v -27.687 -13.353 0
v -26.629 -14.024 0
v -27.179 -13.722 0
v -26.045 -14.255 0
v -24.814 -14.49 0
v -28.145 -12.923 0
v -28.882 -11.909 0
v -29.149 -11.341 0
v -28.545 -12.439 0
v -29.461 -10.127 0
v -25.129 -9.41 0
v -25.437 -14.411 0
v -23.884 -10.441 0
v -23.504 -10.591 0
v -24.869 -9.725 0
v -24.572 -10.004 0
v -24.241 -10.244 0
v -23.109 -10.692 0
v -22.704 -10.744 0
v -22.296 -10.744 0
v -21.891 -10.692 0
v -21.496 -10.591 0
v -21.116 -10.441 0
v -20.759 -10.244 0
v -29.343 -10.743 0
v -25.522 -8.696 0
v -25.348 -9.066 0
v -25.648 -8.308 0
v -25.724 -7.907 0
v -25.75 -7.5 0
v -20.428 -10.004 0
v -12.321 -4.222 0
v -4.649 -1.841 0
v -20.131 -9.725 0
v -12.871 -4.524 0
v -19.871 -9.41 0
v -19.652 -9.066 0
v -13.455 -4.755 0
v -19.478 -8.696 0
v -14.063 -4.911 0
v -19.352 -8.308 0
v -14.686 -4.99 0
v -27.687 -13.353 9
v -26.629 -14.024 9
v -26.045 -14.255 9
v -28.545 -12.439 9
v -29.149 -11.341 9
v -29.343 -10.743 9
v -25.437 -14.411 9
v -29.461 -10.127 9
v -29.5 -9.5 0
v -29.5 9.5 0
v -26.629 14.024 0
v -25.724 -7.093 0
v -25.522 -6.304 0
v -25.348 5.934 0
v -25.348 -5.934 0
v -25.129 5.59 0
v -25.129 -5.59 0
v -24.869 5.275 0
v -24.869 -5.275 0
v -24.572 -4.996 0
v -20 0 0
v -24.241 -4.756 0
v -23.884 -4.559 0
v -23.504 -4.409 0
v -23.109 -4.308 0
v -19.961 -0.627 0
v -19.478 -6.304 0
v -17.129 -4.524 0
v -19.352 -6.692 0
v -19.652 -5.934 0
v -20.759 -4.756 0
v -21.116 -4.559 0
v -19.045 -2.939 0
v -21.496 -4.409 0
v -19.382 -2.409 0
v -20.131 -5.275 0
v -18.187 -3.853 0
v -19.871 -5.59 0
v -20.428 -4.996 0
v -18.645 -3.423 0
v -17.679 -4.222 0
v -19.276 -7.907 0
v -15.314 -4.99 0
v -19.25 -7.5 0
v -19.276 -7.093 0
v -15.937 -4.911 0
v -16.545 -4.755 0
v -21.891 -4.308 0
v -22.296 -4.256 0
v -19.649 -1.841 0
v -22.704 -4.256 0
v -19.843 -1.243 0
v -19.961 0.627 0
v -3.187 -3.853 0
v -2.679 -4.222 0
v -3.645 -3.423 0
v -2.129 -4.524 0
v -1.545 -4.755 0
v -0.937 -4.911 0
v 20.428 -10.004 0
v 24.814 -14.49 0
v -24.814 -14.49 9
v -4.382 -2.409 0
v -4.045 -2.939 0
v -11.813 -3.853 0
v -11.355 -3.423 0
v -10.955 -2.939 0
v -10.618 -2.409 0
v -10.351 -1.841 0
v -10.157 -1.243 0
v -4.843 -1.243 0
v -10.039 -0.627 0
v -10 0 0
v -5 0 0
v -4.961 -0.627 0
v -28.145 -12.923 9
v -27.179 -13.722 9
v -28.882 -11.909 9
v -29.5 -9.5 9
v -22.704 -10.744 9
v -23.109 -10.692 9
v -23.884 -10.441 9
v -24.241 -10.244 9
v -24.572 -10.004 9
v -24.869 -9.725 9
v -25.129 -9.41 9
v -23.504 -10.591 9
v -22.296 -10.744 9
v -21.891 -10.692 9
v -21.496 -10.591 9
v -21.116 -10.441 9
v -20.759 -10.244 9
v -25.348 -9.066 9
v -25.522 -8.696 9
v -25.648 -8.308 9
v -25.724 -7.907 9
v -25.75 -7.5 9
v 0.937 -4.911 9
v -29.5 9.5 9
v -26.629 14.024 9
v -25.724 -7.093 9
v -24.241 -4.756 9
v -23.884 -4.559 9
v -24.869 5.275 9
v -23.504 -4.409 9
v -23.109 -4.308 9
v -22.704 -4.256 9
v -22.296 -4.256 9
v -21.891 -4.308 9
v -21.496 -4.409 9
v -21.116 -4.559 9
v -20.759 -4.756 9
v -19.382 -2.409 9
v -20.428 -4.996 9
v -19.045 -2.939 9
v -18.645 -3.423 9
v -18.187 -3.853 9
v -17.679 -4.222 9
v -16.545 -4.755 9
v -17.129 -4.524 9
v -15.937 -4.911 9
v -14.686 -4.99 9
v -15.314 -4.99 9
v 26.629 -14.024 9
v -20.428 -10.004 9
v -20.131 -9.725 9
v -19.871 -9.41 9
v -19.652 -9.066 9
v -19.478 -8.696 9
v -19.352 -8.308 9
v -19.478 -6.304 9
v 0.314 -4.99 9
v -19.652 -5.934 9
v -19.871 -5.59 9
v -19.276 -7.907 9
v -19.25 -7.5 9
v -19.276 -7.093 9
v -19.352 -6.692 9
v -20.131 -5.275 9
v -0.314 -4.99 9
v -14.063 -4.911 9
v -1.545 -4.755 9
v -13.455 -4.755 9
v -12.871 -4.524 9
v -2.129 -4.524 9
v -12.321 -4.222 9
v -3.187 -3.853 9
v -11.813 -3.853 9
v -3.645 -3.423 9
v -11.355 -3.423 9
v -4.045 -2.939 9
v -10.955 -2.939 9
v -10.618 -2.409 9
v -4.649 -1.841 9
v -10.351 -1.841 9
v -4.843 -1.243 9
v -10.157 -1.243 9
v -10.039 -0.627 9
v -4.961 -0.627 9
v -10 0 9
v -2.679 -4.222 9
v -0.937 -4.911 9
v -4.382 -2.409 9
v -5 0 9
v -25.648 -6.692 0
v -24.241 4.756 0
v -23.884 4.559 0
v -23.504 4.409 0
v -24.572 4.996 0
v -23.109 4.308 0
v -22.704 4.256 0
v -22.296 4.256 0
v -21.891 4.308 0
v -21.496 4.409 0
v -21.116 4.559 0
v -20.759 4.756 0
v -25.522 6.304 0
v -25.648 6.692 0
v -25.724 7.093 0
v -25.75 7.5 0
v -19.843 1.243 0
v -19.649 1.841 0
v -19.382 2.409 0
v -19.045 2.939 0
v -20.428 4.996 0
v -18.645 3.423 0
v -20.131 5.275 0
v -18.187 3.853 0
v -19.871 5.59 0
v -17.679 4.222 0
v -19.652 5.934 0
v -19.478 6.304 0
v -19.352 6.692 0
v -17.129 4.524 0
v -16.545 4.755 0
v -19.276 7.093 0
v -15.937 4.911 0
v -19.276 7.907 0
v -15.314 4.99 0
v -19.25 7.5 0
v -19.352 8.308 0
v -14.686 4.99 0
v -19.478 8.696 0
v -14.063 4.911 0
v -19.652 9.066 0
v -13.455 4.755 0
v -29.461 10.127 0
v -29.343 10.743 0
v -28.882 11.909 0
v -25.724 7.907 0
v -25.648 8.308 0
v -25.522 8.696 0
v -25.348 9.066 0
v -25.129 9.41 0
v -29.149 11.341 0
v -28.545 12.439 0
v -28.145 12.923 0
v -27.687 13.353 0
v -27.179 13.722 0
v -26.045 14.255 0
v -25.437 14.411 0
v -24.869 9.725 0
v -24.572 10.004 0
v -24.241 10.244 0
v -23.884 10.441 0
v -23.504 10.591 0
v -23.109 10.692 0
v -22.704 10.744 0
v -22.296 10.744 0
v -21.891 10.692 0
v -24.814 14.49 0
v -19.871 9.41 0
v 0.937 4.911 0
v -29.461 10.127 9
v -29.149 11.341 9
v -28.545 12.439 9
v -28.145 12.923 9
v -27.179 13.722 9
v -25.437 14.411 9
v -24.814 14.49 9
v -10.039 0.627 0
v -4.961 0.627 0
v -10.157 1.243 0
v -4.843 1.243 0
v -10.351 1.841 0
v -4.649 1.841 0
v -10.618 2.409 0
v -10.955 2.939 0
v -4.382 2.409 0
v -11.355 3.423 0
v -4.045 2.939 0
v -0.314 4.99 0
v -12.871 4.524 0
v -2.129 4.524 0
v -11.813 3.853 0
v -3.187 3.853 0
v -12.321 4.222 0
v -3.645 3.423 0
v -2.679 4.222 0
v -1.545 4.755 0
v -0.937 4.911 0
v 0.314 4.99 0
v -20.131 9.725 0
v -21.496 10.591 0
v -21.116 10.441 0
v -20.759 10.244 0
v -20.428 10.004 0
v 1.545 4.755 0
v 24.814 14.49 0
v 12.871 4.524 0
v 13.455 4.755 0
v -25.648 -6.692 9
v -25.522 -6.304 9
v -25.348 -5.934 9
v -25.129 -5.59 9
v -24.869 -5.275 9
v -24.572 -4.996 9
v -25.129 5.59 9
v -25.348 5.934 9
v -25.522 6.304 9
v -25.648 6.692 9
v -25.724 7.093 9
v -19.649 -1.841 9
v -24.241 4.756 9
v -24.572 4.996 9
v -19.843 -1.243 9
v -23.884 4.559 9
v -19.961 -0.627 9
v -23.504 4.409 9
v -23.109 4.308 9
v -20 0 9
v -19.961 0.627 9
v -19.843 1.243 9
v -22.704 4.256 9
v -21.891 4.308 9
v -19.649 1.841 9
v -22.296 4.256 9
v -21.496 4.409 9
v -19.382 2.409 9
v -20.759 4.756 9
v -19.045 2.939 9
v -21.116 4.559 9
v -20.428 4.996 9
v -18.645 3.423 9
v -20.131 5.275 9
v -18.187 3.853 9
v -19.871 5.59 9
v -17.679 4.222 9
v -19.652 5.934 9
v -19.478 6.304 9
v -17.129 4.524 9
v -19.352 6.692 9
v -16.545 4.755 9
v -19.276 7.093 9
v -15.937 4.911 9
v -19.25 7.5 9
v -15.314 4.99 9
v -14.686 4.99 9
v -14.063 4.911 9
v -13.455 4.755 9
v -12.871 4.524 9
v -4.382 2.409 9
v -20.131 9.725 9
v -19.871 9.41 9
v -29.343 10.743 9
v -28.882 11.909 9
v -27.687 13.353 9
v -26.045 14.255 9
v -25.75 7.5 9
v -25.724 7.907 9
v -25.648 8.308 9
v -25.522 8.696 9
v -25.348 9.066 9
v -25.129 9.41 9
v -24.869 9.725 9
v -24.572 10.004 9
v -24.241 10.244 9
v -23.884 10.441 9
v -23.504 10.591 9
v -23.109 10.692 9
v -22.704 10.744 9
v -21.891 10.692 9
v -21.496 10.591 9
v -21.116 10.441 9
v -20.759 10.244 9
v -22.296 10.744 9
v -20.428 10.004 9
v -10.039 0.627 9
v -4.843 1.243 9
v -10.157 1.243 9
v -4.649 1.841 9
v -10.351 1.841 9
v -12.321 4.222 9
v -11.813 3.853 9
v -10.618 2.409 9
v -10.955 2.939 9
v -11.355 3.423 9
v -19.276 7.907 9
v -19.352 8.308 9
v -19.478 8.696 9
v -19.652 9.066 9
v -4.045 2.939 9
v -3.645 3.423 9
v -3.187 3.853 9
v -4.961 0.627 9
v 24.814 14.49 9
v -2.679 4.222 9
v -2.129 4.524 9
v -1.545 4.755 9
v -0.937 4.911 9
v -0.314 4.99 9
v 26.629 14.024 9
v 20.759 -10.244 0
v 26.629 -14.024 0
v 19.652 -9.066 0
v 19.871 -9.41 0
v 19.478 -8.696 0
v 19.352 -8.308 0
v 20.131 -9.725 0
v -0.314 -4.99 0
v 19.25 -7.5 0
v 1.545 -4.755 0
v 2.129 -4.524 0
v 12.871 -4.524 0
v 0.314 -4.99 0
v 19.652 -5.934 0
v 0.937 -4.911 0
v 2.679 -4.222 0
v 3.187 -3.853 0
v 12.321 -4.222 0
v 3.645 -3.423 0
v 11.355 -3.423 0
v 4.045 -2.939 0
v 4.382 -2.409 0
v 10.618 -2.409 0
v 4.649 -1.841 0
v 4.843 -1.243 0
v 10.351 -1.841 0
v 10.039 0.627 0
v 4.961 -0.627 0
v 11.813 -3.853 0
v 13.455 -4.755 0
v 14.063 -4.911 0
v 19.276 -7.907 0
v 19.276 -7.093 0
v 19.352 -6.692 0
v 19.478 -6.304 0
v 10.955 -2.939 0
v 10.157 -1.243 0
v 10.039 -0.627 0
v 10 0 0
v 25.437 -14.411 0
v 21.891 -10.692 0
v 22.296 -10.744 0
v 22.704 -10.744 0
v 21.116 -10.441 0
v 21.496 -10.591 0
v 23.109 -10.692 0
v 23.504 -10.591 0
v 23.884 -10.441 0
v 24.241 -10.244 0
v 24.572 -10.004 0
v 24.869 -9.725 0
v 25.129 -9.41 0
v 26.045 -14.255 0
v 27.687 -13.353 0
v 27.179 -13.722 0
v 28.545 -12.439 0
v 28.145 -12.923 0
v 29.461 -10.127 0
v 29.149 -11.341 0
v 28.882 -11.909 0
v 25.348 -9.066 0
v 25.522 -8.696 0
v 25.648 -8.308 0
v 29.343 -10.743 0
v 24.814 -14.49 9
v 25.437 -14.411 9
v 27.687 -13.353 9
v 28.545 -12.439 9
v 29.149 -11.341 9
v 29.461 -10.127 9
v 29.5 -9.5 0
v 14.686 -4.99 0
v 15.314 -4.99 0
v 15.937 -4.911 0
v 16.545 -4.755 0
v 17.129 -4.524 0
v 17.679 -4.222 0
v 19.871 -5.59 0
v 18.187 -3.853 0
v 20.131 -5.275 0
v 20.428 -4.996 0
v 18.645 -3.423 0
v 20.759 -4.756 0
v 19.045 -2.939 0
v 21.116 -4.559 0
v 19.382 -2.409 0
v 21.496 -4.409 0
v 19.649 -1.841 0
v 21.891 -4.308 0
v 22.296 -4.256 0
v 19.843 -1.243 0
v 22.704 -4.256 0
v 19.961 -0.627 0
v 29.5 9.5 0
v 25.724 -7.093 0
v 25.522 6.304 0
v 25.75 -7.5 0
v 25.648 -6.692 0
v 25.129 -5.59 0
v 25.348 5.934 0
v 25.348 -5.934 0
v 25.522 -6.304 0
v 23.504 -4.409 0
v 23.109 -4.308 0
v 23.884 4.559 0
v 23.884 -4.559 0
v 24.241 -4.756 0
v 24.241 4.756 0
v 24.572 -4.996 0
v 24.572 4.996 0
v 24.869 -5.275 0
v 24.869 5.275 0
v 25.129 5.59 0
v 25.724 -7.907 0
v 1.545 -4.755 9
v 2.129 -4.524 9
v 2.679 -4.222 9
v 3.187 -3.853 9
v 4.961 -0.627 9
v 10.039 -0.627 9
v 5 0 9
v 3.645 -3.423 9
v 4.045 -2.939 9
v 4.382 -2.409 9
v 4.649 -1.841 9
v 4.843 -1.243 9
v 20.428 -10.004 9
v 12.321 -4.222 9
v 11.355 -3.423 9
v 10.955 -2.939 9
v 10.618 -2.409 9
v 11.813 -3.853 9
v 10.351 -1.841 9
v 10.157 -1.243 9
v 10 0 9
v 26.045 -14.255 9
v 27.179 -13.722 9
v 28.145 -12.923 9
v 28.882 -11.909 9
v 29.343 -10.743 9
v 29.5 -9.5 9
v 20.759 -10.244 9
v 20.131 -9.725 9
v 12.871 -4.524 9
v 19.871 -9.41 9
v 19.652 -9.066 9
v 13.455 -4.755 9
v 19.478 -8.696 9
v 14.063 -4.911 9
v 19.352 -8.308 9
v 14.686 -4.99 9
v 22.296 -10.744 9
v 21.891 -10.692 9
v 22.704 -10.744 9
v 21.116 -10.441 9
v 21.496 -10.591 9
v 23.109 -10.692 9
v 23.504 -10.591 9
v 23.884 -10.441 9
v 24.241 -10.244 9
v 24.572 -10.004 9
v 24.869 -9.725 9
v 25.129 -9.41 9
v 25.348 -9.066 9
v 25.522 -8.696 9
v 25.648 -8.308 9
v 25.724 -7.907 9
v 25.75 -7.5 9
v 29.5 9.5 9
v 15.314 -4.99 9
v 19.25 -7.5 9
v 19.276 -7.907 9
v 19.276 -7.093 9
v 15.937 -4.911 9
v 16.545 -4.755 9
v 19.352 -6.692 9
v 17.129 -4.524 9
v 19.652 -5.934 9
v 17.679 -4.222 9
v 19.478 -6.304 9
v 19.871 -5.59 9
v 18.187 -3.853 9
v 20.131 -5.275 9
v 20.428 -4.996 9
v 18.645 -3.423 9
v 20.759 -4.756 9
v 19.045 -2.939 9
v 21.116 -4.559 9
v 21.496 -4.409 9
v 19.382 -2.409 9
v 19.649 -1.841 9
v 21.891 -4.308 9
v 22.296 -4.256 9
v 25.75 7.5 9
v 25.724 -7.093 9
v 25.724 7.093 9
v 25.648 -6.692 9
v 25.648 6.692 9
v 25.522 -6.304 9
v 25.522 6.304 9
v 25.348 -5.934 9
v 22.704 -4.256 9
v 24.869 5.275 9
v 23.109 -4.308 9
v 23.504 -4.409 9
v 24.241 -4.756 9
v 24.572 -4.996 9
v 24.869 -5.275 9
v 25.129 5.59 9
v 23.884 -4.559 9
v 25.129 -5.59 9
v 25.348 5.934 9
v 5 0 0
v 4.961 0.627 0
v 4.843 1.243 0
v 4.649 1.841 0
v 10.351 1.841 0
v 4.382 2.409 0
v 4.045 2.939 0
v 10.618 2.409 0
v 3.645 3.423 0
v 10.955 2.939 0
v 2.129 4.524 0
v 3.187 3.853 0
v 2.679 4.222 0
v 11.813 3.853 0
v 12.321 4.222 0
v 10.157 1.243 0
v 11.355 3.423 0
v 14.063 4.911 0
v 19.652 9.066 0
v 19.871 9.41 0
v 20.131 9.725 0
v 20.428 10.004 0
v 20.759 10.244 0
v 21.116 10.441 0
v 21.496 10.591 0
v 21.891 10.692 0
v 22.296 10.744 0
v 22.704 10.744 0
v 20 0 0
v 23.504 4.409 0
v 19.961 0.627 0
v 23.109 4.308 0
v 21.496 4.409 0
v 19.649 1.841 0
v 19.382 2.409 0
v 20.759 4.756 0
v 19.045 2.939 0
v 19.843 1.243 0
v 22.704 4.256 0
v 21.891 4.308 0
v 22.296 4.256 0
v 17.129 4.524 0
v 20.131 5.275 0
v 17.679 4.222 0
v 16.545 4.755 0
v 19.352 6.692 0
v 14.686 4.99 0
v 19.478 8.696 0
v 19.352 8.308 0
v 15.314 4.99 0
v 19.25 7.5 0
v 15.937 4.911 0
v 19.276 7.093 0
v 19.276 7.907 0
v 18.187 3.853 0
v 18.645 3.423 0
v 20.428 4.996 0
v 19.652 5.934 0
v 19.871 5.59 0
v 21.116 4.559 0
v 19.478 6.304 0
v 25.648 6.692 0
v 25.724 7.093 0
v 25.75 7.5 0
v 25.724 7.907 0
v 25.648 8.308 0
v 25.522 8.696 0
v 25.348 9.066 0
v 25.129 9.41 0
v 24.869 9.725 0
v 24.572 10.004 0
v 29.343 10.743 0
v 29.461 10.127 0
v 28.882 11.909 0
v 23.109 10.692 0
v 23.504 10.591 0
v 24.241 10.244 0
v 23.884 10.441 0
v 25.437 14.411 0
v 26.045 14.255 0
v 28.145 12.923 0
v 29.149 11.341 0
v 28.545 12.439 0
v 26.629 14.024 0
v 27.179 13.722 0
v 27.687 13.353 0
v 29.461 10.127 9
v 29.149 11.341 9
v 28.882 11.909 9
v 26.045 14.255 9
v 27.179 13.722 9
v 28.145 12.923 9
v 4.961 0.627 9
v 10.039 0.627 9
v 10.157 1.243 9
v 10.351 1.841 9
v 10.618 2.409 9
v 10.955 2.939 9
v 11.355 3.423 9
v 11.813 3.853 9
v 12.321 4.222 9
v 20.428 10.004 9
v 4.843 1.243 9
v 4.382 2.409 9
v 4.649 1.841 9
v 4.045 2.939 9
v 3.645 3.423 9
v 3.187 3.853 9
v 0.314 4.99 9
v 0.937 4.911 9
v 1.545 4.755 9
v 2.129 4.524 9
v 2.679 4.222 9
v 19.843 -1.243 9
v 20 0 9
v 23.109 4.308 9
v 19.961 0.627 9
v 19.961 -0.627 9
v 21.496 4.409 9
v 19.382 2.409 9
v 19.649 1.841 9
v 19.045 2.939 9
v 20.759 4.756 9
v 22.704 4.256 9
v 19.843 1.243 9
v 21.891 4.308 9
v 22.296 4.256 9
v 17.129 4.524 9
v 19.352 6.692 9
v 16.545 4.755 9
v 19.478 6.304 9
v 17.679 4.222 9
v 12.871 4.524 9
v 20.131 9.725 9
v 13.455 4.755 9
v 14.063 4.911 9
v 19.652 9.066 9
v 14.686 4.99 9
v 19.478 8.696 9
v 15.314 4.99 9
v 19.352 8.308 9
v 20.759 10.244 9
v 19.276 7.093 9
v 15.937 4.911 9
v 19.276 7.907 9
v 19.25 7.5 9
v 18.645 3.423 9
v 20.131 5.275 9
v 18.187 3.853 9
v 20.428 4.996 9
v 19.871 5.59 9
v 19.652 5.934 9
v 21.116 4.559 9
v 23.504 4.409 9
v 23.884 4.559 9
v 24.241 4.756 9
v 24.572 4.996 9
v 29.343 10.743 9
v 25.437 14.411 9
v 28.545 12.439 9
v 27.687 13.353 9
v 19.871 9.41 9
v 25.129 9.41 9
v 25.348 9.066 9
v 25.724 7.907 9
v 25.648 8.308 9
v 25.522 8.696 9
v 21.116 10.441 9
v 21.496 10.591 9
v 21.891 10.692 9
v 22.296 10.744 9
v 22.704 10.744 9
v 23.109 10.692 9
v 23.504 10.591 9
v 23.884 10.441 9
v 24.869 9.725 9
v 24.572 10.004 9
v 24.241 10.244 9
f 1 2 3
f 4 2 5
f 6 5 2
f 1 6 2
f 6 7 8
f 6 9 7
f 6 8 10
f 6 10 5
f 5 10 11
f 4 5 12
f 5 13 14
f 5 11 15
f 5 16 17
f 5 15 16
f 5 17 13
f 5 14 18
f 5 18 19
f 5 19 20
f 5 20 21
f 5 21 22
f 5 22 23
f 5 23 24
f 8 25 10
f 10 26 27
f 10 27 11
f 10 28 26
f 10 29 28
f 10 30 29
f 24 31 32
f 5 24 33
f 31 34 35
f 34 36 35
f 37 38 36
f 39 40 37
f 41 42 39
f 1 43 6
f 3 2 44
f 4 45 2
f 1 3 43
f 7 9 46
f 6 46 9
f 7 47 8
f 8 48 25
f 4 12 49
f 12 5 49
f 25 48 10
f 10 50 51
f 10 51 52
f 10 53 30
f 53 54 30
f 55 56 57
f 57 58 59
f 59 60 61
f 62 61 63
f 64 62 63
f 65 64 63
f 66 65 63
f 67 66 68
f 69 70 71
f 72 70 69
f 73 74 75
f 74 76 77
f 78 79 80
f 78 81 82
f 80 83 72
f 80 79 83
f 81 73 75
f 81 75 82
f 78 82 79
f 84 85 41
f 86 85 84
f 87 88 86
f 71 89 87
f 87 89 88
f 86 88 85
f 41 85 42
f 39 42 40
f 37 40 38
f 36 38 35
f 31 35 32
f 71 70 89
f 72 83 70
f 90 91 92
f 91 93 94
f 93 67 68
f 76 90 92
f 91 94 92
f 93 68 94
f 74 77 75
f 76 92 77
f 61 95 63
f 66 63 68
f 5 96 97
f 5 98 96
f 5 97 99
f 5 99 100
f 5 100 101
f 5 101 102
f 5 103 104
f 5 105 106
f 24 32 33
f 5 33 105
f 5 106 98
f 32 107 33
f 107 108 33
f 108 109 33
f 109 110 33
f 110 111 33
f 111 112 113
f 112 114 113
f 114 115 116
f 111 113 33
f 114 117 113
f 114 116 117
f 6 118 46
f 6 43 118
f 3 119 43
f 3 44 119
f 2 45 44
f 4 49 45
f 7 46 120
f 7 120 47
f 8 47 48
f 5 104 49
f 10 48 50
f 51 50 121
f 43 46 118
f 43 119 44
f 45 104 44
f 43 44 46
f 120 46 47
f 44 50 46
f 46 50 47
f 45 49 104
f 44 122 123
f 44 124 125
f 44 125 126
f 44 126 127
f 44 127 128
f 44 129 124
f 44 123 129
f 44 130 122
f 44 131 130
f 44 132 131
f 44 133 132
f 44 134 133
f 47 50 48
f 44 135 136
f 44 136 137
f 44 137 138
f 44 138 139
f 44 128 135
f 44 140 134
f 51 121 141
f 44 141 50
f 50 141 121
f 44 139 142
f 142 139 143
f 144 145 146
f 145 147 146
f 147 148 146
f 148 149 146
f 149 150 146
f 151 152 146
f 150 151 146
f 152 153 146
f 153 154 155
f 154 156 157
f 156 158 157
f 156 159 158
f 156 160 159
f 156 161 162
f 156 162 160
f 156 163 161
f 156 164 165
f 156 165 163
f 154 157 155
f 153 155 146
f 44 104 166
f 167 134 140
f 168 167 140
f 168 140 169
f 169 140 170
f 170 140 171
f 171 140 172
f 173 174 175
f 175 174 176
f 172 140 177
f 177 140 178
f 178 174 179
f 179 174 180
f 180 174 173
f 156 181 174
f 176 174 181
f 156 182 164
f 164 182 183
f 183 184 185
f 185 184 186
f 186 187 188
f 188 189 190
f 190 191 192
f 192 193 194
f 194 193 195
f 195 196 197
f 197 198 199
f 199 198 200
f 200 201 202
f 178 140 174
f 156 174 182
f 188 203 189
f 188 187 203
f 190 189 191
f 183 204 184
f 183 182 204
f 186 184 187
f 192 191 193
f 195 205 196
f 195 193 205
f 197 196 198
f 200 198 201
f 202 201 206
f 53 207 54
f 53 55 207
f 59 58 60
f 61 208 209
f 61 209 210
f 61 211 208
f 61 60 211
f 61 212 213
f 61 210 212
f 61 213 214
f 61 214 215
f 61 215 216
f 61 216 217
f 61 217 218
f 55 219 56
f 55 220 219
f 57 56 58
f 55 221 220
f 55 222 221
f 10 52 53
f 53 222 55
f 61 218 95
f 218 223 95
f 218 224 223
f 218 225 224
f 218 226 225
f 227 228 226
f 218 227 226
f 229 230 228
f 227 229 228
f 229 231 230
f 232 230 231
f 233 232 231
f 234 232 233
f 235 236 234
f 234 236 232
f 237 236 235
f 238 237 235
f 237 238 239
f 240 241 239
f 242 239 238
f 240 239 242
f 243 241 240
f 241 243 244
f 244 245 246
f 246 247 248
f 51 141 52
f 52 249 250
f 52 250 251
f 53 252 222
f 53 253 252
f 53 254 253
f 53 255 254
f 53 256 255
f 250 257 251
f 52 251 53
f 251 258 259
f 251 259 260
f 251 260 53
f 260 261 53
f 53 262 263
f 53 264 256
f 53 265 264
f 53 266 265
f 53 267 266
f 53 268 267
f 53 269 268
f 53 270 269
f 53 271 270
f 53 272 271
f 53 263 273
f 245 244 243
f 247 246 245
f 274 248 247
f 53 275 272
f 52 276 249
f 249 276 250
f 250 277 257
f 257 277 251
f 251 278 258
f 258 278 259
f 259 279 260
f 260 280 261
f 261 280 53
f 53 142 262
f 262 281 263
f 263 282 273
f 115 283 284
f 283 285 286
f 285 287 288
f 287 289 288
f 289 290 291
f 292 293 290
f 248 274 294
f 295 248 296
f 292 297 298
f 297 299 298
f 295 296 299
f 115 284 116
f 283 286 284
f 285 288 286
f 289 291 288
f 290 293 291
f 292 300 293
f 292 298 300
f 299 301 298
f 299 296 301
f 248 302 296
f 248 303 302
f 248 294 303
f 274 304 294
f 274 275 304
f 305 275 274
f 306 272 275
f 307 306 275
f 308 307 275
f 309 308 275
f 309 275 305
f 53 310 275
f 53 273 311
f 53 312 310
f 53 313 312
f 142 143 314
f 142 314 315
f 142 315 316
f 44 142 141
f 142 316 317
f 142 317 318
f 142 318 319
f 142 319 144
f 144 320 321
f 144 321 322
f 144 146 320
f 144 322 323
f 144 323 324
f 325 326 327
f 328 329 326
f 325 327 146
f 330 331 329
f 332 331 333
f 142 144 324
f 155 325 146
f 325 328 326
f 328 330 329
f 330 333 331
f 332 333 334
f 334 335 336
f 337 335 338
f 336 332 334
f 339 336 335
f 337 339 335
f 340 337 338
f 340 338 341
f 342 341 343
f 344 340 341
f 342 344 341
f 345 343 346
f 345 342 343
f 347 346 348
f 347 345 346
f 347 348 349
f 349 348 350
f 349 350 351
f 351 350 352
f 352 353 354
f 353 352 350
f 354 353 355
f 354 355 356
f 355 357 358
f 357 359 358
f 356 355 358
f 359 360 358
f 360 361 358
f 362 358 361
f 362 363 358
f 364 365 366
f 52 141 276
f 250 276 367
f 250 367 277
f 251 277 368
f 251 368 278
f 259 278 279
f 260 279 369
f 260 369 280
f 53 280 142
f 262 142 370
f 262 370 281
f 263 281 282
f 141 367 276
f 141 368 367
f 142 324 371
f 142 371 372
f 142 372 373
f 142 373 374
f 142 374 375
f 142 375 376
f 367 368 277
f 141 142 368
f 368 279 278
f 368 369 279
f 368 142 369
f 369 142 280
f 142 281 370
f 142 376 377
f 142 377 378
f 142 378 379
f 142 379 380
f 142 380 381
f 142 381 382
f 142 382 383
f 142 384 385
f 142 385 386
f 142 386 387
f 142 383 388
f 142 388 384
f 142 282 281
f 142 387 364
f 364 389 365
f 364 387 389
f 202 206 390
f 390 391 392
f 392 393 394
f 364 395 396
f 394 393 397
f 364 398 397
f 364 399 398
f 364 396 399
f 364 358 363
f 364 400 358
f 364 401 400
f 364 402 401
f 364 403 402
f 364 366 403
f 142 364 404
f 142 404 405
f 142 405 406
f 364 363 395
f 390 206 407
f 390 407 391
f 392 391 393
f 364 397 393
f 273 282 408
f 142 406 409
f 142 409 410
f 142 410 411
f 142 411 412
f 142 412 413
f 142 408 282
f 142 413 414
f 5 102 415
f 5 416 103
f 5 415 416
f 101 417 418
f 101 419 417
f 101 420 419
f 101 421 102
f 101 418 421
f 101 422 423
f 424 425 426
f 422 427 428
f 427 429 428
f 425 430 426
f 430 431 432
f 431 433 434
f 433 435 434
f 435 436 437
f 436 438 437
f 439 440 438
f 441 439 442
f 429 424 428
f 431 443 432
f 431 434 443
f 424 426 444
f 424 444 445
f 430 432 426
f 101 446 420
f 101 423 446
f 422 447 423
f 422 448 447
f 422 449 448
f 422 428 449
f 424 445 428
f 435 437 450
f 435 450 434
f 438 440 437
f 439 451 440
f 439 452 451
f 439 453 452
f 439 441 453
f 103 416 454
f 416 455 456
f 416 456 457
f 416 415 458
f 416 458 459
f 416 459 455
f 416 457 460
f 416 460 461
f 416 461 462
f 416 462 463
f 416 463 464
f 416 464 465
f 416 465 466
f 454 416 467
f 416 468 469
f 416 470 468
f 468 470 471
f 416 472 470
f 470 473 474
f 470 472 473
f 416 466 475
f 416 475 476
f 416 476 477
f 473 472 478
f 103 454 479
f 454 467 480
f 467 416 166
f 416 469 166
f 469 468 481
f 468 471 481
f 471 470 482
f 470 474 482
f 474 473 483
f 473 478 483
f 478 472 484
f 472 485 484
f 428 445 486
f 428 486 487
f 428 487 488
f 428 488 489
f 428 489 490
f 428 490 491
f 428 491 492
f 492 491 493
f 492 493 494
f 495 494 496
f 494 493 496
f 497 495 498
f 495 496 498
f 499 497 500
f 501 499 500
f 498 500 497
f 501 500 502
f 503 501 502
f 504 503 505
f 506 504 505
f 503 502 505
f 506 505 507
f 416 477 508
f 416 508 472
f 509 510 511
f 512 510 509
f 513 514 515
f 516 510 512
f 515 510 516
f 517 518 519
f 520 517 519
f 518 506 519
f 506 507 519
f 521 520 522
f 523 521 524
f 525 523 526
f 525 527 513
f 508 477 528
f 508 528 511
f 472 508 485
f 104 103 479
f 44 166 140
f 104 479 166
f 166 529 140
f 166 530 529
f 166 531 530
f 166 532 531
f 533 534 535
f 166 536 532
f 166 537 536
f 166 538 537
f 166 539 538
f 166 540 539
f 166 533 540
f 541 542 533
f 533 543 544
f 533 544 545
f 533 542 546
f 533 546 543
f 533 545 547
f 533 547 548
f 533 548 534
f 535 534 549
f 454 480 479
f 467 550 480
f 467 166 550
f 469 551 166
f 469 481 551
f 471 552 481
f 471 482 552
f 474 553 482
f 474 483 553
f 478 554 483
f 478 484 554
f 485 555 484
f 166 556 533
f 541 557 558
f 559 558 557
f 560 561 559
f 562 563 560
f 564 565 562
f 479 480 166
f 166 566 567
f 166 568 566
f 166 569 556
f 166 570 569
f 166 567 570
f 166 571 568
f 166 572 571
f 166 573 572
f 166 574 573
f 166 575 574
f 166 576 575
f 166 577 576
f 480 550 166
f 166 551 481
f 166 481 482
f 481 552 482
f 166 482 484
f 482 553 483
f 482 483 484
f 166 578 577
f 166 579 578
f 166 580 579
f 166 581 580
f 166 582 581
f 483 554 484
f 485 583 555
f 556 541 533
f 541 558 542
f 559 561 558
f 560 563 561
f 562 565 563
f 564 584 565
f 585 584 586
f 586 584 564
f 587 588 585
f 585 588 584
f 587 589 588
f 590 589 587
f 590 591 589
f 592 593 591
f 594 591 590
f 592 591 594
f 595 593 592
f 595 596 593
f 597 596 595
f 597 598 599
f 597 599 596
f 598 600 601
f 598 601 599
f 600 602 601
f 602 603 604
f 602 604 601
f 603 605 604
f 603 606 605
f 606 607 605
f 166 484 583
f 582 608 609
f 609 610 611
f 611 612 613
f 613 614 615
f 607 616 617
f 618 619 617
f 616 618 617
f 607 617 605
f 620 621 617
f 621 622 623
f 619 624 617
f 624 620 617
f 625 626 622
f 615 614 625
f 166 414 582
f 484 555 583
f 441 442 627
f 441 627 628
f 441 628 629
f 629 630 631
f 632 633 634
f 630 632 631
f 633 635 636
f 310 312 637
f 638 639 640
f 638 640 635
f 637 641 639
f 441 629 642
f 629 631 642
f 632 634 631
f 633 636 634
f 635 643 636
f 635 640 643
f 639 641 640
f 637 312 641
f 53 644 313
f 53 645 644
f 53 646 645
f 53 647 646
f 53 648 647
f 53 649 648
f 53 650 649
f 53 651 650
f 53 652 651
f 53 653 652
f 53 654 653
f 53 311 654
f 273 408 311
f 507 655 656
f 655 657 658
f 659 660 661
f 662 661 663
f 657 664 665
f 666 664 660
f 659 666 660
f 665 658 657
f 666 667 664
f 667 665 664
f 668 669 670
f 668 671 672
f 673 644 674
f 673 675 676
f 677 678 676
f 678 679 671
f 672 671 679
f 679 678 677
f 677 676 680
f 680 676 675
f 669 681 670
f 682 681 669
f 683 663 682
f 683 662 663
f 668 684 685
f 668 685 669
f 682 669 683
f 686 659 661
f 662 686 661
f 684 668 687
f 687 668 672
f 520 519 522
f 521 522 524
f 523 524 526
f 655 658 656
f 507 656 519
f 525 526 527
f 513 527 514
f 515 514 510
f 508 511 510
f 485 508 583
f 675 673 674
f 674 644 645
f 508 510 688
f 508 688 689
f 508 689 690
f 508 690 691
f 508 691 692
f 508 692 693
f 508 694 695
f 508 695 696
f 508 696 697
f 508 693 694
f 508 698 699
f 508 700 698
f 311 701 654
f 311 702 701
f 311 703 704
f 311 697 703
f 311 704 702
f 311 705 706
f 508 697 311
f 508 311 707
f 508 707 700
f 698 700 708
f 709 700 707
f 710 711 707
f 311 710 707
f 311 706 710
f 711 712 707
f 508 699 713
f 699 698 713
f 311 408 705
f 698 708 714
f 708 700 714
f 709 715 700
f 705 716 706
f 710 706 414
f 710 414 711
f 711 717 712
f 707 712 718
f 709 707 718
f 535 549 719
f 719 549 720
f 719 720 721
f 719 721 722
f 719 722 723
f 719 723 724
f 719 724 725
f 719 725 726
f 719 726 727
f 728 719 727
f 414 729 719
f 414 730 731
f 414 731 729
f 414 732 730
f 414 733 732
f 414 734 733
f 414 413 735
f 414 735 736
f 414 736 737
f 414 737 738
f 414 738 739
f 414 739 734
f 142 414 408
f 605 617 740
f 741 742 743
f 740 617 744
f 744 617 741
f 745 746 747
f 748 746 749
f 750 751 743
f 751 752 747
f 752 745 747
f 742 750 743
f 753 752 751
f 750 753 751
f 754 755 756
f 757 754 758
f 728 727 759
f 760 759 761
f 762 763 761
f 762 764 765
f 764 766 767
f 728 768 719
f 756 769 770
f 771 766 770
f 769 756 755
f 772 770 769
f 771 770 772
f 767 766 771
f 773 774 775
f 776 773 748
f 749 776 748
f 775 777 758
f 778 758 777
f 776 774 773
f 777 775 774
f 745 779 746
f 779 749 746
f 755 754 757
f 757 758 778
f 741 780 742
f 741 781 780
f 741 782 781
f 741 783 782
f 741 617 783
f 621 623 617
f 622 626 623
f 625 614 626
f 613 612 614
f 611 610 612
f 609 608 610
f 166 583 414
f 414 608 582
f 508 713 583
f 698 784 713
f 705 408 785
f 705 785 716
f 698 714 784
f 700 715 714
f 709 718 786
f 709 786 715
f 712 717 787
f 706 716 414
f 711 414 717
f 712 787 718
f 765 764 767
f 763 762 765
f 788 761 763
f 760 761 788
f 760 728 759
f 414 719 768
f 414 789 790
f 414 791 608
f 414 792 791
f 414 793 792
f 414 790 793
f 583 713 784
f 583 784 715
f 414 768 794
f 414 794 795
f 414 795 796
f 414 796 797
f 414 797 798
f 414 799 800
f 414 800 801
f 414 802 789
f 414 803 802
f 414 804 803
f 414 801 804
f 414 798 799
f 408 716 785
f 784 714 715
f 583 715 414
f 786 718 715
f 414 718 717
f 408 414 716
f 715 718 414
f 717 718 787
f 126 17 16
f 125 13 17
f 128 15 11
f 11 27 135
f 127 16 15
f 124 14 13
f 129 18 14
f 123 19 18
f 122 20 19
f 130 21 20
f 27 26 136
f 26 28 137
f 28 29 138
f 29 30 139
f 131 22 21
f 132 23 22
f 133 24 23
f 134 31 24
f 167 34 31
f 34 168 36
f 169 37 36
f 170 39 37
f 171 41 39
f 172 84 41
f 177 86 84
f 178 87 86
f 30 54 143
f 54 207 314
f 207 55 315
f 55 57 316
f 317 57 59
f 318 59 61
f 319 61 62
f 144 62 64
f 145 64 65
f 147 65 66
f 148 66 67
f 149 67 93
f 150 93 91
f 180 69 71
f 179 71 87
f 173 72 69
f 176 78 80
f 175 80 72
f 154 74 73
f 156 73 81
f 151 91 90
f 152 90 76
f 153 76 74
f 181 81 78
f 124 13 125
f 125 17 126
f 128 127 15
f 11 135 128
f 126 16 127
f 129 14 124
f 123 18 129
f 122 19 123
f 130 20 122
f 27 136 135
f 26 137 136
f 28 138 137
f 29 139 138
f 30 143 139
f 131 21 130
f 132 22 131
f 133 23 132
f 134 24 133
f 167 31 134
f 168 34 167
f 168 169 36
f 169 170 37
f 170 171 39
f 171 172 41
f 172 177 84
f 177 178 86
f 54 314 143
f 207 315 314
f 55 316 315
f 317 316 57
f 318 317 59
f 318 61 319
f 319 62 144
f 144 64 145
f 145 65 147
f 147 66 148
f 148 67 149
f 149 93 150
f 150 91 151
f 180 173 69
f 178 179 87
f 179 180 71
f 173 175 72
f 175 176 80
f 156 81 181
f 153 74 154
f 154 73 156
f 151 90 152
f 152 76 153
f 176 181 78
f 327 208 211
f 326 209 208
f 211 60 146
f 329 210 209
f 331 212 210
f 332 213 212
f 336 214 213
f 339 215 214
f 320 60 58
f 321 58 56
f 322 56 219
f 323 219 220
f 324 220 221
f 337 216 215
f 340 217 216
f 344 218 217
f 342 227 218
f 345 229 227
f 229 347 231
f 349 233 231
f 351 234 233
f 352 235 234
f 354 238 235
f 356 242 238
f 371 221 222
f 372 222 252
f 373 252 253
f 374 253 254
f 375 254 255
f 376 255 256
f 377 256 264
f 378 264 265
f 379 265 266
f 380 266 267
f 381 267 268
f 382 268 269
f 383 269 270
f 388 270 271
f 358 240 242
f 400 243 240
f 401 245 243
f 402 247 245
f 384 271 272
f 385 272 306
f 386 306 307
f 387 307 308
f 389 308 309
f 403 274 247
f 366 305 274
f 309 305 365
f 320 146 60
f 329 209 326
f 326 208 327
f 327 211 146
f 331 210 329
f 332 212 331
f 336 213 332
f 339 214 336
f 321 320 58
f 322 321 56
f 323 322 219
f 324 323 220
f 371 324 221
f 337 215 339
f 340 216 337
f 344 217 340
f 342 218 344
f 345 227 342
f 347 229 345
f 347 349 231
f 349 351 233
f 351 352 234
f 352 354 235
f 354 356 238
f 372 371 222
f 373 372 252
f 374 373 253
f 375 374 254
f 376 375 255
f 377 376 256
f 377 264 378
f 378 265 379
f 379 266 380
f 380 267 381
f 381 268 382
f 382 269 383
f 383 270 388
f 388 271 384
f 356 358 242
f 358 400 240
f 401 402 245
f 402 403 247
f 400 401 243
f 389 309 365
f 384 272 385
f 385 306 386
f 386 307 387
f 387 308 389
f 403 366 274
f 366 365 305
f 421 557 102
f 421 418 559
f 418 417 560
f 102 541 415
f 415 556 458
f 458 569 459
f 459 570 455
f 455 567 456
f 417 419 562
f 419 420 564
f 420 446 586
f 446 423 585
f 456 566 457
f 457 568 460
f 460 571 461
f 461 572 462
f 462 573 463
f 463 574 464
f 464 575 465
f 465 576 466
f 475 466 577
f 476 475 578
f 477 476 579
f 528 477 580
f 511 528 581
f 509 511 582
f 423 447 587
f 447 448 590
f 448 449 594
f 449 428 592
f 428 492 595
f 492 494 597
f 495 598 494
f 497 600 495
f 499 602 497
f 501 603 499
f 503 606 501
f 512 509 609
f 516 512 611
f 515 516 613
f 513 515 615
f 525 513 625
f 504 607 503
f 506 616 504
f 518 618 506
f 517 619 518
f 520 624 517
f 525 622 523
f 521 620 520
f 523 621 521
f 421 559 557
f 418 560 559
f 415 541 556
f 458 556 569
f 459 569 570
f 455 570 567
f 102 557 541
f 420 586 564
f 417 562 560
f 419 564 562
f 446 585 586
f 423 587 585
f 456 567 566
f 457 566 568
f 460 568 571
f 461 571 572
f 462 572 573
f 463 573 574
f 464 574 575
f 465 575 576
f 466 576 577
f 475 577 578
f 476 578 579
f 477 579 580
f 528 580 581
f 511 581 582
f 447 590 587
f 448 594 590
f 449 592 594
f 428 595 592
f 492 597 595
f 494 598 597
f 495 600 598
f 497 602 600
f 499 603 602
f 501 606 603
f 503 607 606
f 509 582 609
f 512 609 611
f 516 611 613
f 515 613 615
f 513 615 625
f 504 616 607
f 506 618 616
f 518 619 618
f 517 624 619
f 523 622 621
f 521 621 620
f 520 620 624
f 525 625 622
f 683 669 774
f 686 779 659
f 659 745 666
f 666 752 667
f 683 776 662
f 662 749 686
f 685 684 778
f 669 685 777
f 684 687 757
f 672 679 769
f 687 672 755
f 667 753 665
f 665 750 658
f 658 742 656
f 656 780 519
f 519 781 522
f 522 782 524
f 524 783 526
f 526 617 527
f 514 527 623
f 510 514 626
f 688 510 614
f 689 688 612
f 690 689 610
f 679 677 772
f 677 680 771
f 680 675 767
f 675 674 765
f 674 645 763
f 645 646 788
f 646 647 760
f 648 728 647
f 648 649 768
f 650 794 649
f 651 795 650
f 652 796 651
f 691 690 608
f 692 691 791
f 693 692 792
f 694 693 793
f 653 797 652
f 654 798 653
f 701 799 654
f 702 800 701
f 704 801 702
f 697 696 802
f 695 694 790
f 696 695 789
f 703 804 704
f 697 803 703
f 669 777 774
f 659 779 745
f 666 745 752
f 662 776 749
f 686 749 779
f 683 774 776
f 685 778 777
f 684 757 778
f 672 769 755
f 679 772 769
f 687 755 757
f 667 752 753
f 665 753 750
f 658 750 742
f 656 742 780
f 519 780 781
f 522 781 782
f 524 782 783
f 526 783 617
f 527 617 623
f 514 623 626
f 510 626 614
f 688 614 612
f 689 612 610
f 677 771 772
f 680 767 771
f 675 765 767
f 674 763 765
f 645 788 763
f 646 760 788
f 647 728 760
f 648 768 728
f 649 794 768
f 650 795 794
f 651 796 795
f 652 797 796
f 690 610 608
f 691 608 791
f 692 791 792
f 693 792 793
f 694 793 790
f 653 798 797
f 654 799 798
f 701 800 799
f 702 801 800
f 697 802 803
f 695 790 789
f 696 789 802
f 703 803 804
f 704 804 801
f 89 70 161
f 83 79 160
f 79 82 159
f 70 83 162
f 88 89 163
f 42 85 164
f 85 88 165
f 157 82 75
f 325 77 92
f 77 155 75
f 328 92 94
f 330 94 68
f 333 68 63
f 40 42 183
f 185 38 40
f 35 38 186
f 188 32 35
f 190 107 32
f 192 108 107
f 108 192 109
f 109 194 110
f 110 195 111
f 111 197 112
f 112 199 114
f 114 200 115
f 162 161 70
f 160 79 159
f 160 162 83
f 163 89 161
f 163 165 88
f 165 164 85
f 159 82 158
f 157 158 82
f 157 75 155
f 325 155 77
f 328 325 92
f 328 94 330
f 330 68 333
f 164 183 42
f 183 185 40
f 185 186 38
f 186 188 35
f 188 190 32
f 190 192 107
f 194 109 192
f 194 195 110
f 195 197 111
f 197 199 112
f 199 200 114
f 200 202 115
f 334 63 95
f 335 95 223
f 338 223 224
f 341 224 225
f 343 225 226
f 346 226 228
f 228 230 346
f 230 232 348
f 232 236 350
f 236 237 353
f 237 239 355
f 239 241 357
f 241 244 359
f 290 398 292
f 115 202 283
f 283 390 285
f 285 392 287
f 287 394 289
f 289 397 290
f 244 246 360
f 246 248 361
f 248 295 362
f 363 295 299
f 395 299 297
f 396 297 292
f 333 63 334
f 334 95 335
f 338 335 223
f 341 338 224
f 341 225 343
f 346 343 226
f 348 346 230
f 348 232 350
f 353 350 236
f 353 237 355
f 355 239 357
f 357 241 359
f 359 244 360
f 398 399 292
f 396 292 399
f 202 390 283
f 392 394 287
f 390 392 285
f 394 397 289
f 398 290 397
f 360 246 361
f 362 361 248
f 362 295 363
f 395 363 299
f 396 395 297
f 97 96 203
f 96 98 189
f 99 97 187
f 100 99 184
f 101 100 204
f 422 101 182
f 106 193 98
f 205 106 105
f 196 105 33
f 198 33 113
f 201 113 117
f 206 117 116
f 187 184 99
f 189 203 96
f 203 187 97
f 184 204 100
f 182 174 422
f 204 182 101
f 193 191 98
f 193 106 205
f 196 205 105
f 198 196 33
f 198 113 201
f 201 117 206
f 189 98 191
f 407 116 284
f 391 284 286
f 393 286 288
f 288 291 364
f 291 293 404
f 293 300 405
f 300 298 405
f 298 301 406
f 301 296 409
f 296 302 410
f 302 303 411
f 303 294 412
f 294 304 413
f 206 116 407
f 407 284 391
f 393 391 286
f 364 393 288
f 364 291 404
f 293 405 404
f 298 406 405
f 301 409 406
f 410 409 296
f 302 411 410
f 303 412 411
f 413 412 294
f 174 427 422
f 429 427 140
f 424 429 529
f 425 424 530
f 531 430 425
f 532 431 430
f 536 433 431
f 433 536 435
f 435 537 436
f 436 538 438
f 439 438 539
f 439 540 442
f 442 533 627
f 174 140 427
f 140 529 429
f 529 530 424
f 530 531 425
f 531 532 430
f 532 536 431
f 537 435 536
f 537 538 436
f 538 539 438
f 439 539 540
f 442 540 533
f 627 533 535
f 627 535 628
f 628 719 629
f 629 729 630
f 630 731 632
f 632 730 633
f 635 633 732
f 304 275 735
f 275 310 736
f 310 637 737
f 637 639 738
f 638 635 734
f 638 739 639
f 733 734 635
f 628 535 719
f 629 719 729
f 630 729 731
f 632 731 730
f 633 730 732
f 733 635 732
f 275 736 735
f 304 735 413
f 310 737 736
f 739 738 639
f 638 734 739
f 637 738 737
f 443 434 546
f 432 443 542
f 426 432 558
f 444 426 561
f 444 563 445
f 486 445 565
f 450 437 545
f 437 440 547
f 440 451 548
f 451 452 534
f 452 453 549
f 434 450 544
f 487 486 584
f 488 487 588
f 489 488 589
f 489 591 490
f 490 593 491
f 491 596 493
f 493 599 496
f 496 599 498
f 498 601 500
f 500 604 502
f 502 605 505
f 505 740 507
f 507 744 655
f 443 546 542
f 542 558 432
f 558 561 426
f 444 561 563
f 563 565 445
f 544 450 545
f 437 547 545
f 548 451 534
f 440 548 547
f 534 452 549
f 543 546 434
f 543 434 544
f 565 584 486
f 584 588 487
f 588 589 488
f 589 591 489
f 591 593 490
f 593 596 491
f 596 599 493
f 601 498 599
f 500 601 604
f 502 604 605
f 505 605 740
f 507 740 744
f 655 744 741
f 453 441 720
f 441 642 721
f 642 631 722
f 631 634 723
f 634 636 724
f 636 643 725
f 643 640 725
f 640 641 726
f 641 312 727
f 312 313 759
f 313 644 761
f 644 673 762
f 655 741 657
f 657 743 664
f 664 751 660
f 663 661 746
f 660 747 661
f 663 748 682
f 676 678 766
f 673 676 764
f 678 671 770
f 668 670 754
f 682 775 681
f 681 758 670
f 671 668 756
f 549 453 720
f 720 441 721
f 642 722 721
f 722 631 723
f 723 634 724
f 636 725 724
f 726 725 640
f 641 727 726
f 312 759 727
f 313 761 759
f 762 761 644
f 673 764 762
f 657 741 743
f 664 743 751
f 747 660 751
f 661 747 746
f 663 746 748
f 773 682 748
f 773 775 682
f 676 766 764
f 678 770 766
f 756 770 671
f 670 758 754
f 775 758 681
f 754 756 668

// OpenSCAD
$fn = 50;

difference() {
	union() {
		hull() {
			translate(v = [-24.5, 9.5, 0]) {
				cylinder(h = 9, r = 5);
			}
			translate(v = [24.5, 9.5, 0]) {
				cylinder(h = 9, r = 5);
			}
			translate(v = [-24.5, -9.5, 0]) {
				cylinder(h = 9, r = 5);
			}
			translate(v = [24.5, -9.5, 0]) {
				cylinder(h = 9, r = 5);
			}
		}
	}
	union() {
		translate(v = [-22.5, -7.5, -100.0]) {
			cylinder(h = 200, r = 3.25);
		}
		translate(v = [-22.5, 7.5, -100.0]) {
			cylinder(h = 200, r = 3.25);
		}
		translate(v = [22.5, -7.5, -100.0]) {
			cylinder(h = 200, r = 3.25);
		}
		translate(v = [22.5, 7.5, -100.0]) {
			cylinder(h = 200, r = 3.25);
		}
		translate(v = [-22.5, -7.5, -100.0]) {
			cylinder(h = 200, r = 1.8);
		}
		translate(v = [-22.5, 7.5, -100.0]) {
			cylinder(h = 200, r = 1.8);
		}
		translate(v = [22.5, -7.5, -100.0]) {
			cylinder(h = 200, r = 1.8);
		}
		translate(v = [22.5, 7.5, -100.0]) {
			cylinder(h = 200, r = 1.8);
		}
		translate(v = [-15.0, 0, 0.0]) {
			cylinder(h = 9, r = 5.0);
		}
		cylinder(h = 9, r = 5.0);
		translate(v = [15.0, 0, 0.0]) {
			cylinder(h = 9, r = 5.0);
		}
	}
}
